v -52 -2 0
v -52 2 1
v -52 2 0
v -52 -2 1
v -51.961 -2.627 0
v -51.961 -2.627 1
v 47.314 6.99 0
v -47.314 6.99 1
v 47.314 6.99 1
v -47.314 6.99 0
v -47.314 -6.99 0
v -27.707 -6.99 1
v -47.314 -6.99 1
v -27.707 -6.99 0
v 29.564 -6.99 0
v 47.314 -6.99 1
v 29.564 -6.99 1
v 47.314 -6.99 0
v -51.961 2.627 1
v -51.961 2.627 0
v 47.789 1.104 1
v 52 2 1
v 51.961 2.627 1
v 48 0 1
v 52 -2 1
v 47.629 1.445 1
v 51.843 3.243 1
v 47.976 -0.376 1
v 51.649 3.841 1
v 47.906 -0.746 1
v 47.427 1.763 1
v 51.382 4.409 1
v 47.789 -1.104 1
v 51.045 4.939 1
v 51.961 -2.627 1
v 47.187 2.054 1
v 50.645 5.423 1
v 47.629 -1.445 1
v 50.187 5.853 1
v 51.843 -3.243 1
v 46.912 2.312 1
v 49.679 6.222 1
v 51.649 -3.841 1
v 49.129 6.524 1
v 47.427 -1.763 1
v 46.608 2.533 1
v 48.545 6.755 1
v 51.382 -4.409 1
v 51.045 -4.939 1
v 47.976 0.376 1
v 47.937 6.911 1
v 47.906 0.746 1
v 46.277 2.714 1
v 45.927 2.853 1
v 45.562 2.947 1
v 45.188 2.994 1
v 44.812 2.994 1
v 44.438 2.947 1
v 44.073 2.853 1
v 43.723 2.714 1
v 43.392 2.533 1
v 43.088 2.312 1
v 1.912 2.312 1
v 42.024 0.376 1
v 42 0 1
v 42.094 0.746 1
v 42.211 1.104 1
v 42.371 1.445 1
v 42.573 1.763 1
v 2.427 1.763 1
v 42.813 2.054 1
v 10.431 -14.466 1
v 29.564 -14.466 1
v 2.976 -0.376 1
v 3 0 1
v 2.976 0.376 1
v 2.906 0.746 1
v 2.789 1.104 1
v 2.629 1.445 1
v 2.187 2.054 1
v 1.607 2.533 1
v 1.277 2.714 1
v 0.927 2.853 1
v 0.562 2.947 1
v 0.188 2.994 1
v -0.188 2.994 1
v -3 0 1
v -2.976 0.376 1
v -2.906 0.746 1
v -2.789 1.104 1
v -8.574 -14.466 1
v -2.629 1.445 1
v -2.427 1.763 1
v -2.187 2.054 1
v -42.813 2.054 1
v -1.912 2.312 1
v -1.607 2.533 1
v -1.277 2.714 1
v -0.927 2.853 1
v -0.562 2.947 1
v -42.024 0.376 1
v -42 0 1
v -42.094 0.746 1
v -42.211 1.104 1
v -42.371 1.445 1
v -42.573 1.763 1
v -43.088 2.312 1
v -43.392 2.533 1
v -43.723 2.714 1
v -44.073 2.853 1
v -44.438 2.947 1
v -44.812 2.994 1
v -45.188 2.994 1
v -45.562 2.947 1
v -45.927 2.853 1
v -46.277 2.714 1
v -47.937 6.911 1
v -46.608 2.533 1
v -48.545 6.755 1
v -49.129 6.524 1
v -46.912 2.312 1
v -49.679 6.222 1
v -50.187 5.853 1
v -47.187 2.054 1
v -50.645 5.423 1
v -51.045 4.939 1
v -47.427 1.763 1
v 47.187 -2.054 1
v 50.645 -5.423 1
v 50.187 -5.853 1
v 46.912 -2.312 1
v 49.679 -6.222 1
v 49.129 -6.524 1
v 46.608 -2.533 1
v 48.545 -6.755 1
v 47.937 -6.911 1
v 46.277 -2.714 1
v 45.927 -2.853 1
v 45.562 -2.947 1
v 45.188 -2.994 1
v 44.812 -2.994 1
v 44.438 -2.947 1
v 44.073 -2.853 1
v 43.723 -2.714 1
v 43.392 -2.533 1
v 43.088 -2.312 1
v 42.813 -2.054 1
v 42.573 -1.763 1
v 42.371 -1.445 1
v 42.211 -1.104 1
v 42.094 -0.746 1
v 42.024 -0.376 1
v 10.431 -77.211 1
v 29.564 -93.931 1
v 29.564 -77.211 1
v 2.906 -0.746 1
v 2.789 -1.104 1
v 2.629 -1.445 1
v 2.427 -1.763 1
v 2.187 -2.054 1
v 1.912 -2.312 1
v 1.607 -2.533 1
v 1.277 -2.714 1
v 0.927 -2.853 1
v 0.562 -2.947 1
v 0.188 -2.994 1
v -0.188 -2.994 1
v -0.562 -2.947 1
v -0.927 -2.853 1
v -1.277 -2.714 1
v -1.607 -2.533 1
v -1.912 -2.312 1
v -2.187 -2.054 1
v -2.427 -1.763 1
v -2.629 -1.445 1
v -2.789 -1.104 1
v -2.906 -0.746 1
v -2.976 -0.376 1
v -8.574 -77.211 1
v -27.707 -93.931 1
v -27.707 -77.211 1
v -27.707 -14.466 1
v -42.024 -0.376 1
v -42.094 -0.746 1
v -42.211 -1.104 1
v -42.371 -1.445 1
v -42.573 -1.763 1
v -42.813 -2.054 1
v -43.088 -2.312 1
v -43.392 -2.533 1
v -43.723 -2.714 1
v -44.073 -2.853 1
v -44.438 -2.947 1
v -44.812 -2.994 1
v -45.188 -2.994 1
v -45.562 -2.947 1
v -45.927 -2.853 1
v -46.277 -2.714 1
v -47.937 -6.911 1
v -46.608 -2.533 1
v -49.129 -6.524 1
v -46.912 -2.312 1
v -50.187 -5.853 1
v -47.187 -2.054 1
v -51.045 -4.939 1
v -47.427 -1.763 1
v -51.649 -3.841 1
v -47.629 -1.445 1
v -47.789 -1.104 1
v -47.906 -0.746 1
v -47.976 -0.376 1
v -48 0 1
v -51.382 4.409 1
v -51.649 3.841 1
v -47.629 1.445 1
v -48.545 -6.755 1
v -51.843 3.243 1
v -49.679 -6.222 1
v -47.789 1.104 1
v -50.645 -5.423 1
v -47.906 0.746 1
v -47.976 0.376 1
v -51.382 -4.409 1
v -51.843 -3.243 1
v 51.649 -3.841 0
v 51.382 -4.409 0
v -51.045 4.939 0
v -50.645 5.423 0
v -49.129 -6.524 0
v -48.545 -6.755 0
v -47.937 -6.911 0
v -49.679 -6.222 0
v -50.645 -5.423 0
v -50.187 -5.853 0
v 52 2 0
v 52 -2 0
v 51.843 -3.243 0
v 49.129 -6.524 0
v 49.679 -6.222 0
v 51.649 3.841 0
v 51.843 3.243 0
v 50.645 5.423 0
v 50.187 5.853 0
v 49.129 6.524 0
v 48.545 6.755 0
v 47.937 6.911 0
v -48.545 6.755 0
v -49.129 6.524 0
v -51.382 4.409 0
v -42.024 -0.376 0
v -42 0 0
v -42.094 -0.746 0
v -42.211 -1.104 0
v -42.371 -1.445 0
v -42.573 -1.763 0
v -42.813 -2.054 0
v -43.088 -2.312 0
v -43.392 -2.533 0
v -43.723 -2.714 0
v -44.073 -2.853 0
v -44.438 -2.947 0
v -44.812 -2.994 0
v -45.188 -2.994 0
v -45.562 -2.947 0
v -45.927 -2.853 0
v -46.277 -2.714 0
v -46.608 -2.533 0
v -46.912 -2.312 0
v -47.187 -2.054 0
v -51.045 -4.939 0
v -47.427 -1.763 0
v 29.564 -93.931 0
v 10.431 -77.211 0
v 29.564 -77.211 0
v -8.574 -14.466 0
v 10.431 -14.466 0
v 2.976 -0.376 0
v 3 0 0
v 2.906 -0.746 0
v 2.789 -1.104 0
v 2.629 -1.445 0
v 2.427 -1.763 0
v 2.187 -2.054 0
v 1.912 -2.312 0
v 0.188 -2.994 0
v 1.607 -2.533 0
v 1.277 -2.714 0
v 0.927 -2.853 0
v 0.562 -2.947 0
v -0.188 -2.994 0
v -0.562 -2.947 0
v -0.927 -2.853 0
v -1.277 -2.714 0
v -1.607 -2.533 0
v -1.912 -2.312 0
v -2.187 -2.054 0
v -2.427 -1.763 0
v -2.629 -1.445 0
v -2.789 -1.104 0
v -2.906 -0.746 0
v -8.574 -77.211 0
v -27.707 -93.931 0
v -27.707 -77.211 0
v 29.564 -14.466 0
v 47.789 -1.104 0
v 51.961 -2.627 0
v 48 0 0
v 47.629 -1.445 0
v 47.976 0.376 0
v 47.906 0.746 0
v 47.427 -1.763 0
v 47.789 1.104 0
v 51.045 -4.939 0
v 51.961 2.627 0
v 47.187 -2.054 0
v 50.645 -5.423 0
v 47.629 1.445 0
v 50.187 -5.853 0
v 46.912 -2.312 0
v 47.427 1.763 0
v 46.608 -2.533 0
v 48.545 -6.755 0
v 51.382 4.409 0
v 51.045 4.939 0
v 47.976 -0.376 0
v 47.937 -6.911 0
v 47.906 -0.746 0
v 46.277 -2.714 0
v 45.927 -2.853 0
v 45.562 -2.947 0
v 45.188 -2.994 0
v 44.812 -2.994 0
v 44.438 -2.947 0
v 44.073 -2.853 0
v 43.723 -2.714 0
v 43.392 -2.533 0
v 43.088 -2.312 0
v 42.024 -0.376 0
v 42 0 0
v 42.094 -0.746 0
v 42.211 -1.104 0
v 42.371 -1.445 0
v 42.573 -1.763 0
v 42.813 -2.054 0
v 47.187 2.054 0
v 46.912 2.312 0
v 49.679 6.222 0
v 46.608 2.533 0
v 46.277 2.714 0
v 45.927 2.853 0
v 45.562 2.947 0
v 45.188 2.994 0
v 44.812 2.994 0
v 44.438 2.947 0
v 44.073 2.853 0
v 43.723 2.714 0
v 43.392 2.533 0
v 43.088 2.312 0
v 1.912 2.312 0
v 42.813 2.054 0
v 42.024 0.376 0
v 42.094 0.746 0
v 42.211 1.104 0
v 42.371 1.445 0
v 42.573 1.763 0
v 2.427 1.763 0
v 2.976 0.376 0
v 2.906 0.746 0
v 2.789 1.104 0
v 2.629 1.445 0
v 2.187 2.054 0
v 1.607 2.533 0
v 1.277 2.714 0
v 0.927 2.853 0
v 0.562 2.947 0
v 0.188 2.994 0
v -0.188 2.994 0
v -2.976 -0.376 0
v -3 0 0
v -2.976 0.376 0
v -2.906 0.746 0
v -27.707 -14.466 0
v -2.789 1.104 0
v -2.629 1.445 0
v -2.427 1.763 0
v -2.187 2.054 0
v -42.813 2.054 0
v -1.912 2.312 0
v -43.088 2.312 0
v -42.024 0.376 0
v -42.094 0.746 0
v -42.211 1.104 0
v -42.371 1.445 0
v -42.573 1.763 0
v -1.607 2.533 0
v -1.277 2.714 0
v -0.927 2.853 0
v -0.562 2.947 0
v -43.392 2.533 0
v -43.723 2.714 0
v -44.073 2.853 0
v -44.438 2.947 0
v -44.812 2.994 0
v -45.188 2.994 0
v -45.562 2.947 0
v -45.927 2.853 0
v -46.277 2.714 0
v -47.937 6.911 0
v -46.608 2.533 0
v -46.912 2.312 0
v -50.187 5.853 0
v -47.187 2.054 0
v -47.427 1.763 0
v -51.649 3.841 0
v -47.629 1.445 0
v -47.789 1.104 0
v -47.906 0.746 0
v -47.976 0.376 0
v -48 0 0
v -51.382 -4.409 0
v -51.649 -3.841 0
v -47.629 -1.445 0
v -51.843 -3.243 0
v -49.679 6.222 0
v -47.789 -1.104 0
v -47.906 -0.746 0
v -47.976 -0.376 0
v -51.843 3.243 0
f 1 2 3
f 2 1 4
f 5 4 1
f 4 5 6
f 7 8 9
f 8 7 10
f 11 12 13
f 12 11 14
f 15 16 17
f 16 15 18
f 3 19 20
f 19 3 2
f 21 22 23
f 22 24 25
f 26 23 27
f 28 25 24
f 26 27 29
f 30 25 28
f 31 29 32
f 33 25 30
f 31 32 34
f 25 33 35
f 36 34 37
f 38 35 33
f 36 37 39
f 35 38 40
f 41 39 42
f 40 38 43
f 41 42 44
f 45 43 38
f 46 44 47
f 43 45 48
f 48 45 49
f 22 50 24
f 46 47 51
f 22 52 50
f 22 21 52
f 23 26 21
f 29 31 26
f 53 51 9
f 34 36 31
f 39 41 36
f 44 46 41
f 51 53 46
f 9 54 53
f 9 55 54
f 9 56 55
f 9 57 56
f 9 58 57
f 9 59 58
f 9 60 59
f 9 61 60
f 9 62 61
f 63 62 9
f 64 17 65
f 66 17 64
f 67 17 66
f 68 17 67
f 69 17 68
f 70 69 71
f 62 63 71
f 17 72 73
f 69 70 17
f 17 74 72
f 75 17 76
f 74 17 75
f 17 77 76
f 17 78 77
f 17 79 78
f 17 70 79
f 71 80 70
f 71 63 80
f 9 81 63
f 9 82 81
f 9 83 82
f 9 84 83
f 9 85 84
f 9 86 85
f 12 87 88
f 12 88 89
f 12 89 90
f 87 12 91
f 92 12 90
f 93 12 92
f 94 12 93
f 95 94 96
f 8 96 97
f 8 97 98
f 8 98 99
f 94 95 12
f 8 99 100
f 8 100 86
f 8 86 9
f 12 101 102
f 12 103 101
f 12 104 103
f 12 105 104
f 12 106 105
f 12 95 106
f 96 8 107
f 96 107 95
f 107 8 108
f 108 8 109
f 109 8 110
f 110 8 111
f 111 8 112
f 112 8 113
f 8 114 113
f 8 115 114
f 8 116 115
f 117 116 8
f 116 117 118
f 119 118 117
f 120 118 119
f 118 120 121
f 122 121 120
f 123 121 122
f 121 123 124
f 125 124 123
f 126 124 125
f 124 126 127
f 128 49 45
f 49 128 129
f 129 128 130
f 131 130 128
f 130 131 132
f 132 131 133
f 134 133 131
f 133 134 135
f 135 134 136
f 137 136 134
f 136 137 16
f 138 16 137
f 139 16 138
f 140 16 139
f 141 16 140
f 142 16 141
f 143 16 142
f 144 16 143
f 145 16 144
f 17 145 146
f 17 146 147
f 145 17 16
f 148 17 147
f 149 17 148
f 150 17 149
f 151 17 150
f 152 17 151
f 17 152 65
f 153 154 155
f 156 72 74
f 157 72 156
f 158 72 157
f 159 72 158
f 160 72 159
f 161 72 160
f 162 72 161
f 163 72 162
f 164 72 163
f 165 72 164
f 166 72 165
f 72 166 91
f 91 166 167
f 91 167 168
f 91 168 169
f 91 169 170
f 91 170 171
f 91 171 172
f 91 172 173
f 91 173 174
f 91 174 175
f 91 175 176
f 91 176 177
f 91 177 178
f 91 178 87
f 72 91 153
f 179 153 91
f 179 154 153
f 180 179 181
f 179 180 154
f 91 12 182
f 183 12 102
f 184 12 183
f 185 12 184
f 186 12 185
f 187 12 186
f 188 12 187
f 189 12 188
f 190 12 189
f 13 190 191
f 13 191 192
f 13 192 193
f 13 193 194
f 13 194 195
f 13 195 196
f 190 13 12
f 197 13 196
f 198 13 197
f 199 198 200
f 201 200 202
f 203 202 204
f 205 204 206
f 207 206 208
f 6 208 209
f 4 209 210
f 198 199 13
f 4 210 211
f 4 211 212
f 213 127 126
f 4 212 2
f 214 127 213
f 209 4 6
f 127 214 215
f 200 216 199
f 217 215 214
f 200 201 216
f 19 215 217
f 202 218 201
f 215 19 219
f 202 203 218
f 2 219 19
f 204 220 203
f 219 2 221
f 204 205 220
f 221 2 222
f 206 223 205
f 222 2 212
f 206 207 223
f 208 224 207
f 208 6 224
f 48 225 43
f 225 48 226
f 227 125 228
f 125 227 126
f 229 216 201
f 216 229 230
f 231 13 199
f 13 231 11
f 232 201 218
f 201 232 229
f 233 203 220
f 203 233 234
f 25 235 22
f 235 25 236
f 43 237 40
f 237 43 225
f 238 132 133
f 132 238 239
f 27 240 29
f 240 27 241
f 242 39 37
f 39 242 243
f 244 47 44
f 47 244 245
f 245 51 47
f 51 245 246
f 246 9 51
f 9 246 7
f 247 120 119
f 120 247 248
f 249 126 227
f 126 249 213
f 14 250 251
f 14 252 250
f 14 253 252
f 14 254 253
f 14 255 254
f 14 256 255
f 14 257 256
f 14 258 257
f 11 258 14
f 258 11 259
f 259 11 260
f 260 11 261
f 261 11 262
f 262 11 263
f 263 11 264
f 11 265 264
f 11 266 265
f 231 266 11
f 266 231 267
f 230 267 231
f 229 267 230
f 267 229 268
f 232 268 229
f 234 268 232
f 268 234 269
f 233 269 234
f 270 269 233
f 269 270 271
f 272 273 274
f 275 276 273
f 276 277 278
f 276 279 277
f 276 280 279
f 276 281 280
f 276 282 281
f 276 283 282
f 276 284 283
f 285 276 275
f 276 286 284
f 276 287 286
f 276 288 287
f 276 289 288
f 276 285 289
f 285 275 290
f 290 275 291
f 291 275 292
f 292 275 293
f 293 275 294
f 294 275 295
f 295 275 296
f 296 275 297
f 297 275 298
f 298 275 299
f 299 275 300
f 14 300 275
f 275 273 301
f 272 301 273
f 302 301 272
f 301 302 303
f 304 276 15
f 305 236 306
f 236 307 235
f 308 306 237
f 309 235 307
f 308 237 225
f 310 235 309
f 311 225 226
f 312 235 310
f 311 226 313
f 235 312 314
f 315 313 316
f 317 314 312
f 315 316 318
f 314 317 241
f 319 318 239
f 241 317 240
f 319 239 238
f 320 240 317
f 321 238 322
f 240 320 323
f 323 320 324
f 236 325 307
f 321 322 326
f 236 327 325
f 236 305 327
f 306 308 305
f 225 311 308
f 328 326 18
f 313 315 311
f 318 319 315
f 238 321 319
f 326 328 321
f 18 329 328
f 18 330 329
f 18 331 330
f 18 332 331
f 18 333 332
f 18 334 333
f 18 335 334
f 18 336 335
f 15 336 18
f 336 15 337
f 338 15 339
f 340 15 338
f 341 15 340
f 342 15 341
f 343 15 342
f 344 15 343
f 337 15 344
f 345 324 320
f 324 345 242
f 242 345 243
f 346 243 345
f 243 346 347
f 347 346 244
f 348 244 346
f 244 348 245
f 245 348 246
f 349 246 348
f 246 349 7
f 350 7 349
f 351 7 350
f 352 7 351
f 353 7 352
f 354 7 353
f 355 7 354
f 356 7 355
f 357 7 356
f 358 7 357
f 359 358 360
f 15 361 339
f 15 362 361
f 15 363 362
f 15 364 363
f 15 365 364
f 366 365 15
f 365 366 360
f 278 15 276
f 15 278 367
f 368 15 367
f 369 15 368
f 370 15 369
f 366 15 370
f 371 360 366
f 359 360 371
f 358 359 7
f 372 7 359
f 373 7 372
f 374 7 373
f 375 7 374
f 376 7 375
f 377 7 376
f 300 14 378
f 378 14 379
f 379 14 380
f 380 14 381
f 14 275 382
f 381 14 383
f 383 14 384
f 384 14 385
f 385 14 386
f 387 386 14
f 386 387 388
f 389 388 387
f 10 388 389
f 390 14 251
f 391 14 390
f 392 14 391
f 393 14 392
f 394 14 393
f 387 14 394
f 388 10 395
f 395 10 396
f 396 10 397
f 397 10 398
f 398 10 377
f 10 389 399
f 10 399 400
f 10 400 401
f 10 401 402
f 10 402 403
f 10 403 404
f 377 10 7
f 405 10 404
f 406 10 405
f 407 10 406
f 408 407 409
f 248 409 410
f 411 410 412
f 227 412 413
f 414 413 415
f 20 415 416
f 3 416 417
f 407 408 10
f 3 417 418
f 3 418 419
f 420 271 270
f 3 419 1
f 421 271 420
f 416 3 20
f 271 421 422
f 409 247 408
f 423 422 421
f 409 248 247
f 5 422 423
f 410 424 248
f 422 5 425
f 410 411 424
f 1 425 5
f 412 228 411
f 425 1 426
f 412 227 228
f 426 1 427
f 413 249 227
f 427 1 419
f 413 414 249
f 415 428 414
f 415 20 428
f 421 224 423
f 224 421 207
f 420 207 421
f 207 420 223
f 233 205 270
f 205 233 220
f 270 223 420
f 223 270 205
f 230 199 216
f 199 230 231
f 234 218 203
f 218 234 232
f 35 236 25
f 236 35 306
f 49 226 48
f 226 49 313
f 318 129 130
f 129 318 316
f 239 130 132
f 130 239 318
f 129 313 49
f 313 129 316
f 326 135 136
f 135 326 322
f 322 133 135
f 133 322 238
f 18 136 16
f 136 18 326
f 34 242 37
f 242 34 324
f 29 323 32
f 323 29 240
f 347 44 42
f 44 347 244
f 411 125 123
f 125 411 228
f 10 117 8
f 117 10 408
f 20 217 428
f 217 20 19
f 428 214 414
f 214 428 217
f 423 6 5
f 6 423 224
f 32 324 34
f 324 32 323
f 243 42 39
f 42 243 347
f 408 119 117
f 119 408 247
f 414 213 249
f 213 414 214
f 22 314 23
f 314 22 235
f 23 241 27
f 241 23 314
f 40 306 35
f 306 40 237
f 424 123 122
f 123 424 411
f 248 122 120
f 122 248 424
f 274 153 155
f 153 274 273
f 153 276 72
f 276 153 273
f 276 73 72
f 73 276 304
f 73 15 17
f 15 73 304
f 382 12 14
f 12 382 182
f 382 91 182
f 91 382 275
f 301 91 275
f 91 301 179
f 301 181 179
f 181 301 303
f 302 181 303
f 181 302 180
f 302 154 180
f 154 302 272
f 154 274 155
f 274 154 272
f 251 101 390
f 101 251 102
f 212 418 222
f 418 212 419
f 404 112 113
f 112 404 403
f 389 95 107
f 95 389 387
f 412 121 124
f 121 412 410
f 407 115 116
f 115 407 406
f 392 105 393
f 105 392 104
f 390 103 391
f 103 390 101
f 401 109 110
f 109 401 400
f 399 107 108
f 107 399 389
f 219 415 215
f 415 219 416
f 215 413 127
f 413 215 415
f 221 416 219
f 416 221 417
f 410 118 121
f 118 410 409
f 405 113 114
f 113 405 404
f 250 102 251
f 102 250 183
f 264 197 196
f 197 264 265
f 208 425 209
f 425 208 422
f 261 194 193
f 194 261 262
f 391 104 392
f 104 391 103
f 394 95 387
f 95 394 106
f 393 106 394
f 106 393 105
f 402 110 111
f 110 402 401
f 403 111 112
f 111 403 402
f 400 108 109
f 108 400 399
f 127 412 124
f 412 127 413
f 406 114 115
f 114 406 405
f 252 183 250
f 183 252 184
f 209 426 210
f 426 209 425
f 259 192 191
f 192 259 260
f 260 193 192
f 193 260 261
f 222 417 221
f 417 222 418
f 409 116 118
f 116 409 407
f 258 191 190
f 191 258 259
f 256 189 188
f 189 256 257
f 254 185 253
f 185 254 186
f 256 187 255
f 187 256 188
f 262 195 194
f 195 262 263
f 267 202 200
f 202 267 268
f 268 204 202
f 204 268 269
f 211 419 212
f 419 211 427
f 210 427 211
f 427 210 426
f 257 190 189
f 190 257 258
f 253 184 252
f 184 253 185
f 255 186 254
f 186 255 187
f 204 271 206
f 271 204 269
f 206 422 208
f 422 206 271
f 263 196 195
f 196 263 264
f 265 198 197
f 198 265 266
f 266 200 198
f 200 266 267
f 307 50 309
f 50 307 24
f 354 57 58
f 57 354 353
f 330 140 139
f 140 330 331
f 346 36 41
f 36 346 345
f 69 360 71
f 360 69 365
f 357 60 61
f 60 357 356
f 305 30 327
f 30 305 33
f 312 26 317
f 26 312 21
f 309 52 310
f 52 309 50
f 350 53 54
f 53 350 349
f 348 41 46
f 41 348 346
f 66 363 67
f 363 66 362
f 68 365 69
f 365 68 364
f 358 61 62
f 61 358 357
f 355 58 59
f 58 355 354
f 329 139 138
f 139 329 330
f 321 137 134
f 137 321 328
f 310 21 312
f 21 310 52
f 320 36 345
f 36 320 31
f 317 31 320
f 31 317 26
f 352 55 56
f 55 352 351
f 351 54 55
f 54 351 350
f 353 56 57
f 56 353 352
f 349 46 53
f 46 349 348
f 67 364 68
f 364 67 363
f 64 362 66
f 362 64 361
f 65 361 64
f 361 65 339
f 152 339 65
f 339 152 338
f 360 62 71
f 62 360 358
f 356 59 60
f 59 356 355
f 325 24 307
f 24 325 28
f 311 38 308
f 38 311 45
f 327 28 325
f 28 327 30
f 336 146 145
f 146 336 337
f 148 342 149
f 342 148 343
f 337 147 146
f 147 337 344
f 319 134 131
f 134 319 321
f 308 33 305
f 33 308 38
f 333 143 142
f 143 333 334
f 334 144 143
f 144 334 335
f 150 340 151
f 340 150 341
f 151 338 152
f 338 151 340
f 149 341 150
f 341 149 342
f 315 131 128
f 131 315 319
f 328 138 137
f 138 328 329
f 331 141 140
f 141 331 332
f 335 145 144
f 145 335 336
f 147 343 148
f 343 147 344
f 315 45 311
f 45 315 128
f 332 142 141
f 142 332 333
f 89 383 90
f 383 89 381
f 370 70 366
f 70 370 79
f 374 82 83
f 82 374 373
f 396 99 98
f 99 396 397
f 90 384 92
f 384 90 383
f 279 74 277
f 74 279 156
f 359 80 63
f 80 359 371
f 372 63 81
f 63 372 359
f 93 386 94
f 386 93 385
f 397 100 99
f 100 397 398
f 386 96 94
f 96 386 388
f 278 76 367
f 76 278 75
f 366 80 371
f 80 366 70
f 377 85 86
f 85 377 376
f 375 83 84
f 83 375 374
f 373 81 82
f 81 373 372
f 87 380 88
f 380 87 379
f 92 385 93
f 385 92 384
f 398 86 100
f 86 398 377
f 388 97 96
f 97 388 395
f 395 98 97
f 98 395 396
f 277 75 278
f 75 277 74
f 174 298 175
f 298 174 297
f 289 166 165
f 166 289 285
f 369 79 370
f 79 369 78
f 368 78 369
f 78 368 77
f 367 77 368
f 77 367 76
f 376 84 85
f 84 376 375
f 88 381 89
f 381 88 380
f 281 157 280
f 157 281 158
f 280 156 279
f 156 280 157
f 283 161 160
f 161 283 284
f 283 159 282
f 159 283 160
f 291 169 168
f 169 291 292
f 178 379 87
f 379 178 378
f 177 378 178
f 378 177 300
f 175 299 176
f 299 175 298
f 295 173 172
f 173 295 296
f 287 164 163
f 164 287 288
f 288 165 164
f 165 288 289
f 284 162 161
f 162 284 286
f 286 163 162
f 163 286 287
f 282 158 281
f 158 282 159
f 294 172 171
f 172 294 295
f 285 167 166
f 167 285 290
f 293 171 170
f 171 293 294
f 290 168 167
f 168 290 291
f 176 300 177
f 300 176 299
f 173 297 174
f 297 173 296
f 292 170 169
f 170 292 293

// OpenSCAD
$fn = 50;


difference() {
	union() {
		translate(v = [0, 0, 0]) {
			rotate(a = [0, 0, 0]) {
				hull() {
					translate(v = [-47.0000000000, 2.0000000000, 0]) {
						rotate(a = [0, 0, 0]) {
							translate(v = [0, 0, 0]) {
								rotate(a = [0, 0, 0]) {
									cylinder(h = 1, r = 5);
								}
							}
						}
					}
					translate(v = [47.0000000000, 2.0000000000, 0]) {
						rotate(a = [0, 0, 0]) {
							translate(v = [0, 0, 0]) {
								rotate(a = [0, 0, 0]) {
									cylinder(h = 1, r = 5);
								}
							}
						}
					}
					translate(v = [-47.0000000000, -2.0000000000, 0]) {
						rotate(a = [0, 0, 0]) {
							translate(v = [0, 0, 0]) {
								rotate(a = [0, 0, 0]) {
									cylinder(h = 1, r = 5);
								}
							}
						}
					}
					translate(v = [47.0000000000, -2.0000000000, 0]) {
						rotate(a = [0, 0, 0]) {
							translate(v = [0, 0, 0]) {
								rotate(a = [0, 0, 0]) {
									cylinder(h = 1, r = 5);
								}
							}
						}
					}
				}
			}
		}
		translate(v = [0, 0, 0]) {
			rotate(a = [0, 0, 0]) {
				linear_extrude(height = 1) {
					text(font = "DejaVu Sans Mono:style=Bold", halign = "center", size = 95.0000000000, text = "I", valign = "top");
				}
			}
		}
	}
	union() {
		translate(v = [-45.0000000000, 0.0000000000, -125.0000000000]) {
			rotate(a = [0, 0, 0]) {
				cylinder(h = 250, r = 3.0000000000);
			}
		}
		translate(v = [45.0000000000, 0.0000000000, -125.0000000000]) {
			rotate(a = [0, 0, 0]) {
				cylinder(h = 250, r = 3.0000000000);
			}
		}
		translate(v = [45.0000000000, 0.0000000000, -125.0000000000]) {
			rotate(a = [0, 0, 0]) {
				cylinder(h = 250, r = 3.0000000000);
			}
		}
		translate(v = [0, 0, -125.0000000000]) {
			rotate(a = [0, 0, 0]) {
				cylinder(h = 250, r = 3.0000000000);
			}
		}
	}
}
